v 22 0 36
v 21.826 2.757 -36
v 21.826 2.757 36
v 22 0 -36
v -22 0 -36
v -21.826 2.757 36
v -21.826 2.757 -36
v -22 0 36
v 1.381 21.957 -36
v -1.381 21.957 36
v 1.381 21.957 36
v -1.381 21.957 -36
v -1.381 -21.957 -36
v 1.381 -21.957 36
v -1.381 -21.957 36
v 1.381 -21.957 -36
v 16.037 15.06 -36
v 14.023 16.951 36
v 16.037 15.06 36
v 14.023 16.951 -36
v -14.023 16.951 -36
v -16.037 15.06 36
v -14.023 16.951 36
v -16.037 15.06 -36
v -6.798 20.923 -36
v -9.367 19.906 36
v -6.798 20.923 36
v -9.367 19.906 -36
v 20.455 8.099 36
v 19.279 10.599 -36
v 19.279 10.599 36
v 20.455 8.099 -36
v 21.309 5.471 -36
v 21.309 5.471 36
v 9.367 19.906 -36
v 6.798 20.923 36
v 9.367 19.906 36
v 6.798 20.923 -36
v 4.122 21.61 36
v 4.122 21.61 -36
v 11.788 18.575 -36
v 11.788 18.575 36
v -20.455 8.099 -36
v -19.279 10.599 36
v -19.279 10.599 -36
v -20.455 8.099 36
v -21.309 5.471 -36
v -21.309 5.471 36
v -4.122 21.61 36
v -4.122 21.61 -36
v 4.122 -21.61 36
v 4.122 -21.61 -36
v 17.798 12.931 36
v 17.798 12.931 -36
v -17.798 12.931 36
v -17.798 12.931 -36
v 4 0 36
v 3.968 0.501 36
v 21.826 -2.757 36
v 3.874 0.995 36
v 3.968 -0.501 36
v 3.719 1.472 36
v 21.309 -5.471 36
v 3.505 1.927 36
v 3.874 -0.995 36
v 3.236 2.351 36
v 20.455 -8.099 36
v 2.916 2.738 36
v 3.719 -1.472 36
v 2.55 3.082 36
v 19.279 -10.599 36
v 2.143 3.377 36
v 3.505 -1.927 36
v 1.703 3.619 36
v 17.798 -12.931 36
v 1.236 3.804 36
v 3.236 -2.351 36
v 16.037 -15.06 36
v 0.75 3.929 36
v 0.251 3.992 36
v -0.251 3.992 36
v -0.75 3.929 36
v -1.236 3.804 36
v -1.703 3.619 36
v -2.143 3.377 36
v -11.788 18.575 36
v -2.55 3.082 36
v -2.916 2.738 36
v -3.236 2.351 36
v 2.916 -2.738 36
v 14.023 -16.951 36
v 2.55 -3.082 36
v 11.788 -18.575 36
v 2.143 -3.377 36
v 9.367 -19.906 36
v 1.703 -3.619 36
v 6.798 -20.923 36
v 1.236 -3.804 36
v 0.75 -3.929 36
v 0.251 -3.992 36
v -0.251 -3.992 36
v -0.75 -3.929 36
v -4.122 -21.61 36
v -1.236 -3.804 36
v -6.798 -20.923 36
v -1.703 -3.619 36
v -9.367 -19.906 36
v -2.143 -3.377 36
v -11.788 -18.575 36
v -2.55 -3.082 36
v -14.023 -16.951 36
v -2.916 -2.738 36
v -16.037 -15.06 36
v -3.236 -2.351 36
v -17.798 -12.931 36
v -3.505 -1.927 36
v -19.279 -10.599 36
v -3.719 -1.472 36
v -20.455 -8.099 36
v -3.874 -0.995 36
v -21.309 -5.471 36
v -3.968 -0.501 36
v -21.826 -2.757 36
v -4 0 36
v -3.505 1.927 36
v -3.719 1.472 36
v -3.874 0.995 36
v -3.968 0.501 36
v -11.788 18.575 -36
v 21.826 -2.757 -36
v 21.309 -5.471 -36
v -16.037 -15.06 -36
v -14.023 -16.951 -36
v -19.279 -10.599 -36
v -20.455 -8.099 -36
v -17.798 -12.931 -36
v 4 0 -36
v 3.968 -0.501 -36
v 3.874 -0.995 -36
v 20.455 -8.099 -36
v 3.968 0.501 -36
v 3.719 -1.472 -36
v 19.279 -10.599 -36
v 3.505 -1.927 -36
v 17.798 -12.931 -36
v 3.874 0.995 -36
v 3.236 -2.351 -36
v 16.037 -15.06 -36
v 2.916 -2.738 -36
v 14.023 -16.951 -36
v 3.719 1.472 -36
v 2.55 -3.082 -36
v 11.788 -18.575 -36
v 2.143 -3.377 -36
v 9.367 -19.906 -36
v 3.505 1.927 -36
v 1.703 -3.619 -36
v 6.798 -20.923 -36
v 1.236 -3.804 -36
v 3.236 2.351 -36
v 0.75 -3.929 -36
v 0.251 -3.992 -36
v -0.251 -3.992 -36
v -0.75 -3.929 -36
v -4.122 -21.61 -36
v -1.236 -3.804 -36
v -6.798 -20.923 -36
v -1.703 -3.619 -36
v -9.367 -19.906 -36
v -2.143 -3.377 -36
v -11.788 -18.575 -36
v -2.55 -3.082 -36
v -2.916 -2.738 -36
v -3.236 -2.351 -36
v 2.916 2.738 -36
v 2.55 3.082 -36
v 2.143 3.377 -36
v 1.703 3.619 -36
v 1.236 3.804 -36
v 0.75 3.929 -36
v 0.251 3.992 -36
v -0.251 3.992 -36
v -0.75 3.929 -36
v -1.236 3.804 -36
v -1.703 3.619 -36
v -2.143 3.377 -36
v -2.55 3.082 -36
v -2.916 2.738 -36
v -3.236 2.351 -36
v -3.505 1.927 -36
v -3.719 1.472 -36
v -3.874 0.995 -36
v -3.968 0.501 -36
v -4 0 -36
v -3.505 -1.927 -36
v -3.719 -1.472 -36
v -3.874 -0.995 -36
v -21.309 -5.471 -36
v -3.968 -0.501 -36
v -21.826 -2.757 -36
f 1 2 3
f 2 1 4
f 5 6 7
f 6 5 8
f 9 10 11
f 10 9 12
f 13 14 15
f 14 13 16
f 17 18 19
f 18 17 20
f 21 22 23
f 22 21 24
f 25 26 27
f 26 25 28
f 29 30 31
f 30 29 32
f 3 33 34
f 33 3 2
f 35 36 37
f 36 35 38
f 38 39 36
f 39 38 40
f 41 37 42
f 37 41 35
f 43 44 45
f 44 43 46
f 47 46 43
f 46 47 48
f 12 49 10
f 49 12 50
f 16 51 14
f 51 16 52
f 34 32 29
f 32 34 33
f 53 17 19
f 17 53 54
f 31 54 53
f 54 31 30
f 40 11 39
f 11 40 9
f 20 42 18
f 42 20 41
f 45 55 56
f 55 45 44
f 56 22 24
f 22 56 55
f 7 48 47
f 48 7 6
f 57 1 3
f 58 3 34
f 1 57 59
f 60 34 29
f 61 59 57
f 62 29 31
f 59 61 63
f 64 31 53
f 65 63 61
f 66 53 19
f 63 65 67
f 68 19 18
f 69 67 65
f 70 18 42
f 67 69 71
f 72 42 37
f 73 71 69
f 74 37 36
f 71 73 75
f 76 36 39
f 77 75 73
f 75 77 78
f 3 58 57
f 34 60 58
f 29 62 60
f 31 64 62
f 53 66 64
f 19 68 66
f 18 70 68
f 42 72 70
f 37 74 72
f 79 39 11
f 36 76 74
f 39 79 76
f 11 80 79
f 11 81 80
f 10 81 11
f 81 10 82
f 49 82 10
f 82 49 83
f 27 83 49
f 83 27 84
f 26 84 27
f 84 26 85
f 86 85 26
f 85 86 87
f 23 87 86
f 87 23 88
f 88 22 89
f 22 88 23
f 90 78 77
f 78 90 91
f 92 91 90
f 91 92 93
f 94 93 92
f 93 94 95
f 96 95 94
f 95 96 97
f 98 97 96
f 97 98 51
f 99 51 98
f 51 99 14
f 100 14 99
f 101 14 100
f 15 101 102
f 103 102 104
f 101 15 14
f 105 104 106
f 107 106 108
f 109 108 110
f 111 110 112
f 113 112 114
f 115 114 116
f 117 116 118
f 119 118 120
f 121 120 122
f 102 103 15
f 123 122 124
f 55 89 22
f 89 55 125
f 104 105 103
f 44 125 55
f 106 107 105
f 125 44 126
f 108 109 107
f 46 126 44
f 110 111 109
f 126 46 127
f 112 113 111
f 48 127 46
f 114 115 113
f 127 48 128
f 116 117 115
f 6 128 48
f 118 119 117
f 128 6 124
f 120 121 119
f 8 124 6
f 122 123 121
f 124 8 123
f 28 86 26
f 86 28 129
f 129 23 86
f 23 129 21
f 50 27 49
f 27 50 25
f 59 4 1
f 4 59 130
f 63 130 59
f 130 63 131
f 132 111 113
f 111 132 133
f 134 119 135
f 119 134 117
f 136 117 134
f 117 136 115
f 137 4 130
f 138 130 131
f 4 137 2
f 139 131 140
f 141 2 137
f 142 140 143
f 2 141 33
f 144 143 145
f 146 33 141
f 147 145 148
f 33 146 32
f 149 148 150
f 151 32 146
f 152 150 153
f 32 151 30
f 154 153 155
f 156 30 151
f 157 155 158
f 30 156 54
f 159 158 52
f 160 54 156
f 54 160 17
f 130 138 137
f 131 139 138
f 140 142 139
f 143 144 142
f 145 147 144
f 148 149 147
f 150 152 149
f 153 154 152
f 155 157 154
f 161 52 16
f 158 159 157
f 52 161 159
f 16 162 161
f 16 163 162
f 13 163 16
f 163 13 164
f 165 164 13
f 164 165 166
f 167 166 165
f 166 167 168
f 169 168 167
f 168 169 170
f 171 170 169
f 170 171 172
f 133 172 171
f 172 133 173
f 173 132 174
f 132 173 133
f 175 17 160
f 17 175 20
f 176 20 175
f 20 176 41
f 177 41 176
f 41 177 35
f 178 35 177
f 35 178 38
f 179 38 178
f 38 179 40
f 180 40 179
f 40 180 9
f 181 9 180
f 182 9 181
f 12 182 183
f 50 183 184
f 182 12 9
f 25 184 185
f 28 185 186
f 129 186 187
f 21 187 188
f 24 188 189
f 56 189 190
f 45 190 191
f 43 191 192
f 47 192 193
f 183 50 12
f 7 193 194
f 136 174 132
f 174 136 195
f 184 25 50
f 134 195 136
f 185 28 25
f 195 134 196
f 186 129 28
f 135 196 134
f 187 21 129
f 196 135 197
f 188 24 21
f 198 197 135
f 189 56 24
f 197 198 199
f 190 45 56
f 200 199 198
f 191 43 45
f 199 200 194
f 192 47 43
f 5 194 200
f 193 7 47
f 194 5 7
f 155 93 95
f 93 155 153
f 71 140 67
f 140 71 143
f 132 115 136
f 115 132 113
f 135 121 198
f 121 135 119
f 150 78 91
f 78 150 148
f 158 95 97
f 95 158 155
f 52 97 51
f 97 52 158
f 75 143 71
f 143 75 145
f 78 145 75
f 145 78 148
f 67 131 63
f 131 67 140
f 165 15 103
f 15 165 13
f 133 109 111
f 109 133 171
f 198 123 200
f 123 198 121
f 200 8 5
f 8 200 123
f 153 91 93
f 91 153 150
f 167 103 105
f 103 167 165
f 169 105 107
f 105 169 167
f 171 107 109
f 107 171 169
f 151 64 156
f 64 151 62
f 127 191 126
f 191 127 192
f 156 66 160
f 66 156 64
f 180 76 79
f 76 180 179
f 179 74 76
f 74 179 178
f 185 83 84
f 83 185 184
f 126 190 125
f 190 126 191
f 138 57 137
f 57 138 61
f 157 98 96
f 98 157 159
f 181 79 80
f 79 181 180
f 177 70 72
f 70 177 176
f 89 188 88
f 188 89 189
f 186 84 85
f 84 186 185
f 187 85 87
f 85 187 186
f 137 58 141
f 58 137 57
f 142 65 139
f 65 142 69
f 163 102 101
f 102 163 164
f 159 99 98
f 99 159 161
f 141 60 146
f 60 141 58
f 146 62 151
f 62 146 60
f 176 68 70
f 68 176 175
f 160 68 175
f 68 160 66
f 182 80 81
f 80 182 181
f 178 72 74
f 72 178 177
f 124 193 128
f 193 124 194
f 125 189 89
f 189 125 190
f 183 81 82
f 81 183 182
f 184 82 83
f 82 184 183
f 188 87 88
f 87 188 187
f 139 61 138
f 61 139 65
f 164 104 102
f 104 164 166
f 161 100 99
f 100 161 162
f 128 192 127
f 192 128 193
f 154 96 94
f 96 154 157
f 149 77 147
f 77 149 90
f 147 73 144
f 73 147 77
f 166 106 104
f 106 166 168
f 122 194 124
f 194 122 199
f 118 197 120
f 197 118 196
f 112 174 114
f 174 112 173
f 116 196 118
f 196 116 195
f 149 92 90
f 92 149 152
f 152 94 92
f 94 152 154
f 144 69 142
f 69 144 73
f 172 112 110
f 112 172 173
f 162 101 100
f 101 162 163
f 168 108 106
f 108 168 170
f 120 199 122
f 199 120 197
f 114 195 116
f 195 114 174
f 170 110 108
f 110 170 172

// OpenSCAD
$fn = 50;


difference() {
	union() {
		translate(v = [0, 0, -36.0000000000]) {
			cylinder(h = 72, r = 22.0000000000);
		}
	}
	union() {
		translate(v = [0, 0, -100.0000000000]) {
			cylinder(h = 200, r = 4);
		}
	}
}
